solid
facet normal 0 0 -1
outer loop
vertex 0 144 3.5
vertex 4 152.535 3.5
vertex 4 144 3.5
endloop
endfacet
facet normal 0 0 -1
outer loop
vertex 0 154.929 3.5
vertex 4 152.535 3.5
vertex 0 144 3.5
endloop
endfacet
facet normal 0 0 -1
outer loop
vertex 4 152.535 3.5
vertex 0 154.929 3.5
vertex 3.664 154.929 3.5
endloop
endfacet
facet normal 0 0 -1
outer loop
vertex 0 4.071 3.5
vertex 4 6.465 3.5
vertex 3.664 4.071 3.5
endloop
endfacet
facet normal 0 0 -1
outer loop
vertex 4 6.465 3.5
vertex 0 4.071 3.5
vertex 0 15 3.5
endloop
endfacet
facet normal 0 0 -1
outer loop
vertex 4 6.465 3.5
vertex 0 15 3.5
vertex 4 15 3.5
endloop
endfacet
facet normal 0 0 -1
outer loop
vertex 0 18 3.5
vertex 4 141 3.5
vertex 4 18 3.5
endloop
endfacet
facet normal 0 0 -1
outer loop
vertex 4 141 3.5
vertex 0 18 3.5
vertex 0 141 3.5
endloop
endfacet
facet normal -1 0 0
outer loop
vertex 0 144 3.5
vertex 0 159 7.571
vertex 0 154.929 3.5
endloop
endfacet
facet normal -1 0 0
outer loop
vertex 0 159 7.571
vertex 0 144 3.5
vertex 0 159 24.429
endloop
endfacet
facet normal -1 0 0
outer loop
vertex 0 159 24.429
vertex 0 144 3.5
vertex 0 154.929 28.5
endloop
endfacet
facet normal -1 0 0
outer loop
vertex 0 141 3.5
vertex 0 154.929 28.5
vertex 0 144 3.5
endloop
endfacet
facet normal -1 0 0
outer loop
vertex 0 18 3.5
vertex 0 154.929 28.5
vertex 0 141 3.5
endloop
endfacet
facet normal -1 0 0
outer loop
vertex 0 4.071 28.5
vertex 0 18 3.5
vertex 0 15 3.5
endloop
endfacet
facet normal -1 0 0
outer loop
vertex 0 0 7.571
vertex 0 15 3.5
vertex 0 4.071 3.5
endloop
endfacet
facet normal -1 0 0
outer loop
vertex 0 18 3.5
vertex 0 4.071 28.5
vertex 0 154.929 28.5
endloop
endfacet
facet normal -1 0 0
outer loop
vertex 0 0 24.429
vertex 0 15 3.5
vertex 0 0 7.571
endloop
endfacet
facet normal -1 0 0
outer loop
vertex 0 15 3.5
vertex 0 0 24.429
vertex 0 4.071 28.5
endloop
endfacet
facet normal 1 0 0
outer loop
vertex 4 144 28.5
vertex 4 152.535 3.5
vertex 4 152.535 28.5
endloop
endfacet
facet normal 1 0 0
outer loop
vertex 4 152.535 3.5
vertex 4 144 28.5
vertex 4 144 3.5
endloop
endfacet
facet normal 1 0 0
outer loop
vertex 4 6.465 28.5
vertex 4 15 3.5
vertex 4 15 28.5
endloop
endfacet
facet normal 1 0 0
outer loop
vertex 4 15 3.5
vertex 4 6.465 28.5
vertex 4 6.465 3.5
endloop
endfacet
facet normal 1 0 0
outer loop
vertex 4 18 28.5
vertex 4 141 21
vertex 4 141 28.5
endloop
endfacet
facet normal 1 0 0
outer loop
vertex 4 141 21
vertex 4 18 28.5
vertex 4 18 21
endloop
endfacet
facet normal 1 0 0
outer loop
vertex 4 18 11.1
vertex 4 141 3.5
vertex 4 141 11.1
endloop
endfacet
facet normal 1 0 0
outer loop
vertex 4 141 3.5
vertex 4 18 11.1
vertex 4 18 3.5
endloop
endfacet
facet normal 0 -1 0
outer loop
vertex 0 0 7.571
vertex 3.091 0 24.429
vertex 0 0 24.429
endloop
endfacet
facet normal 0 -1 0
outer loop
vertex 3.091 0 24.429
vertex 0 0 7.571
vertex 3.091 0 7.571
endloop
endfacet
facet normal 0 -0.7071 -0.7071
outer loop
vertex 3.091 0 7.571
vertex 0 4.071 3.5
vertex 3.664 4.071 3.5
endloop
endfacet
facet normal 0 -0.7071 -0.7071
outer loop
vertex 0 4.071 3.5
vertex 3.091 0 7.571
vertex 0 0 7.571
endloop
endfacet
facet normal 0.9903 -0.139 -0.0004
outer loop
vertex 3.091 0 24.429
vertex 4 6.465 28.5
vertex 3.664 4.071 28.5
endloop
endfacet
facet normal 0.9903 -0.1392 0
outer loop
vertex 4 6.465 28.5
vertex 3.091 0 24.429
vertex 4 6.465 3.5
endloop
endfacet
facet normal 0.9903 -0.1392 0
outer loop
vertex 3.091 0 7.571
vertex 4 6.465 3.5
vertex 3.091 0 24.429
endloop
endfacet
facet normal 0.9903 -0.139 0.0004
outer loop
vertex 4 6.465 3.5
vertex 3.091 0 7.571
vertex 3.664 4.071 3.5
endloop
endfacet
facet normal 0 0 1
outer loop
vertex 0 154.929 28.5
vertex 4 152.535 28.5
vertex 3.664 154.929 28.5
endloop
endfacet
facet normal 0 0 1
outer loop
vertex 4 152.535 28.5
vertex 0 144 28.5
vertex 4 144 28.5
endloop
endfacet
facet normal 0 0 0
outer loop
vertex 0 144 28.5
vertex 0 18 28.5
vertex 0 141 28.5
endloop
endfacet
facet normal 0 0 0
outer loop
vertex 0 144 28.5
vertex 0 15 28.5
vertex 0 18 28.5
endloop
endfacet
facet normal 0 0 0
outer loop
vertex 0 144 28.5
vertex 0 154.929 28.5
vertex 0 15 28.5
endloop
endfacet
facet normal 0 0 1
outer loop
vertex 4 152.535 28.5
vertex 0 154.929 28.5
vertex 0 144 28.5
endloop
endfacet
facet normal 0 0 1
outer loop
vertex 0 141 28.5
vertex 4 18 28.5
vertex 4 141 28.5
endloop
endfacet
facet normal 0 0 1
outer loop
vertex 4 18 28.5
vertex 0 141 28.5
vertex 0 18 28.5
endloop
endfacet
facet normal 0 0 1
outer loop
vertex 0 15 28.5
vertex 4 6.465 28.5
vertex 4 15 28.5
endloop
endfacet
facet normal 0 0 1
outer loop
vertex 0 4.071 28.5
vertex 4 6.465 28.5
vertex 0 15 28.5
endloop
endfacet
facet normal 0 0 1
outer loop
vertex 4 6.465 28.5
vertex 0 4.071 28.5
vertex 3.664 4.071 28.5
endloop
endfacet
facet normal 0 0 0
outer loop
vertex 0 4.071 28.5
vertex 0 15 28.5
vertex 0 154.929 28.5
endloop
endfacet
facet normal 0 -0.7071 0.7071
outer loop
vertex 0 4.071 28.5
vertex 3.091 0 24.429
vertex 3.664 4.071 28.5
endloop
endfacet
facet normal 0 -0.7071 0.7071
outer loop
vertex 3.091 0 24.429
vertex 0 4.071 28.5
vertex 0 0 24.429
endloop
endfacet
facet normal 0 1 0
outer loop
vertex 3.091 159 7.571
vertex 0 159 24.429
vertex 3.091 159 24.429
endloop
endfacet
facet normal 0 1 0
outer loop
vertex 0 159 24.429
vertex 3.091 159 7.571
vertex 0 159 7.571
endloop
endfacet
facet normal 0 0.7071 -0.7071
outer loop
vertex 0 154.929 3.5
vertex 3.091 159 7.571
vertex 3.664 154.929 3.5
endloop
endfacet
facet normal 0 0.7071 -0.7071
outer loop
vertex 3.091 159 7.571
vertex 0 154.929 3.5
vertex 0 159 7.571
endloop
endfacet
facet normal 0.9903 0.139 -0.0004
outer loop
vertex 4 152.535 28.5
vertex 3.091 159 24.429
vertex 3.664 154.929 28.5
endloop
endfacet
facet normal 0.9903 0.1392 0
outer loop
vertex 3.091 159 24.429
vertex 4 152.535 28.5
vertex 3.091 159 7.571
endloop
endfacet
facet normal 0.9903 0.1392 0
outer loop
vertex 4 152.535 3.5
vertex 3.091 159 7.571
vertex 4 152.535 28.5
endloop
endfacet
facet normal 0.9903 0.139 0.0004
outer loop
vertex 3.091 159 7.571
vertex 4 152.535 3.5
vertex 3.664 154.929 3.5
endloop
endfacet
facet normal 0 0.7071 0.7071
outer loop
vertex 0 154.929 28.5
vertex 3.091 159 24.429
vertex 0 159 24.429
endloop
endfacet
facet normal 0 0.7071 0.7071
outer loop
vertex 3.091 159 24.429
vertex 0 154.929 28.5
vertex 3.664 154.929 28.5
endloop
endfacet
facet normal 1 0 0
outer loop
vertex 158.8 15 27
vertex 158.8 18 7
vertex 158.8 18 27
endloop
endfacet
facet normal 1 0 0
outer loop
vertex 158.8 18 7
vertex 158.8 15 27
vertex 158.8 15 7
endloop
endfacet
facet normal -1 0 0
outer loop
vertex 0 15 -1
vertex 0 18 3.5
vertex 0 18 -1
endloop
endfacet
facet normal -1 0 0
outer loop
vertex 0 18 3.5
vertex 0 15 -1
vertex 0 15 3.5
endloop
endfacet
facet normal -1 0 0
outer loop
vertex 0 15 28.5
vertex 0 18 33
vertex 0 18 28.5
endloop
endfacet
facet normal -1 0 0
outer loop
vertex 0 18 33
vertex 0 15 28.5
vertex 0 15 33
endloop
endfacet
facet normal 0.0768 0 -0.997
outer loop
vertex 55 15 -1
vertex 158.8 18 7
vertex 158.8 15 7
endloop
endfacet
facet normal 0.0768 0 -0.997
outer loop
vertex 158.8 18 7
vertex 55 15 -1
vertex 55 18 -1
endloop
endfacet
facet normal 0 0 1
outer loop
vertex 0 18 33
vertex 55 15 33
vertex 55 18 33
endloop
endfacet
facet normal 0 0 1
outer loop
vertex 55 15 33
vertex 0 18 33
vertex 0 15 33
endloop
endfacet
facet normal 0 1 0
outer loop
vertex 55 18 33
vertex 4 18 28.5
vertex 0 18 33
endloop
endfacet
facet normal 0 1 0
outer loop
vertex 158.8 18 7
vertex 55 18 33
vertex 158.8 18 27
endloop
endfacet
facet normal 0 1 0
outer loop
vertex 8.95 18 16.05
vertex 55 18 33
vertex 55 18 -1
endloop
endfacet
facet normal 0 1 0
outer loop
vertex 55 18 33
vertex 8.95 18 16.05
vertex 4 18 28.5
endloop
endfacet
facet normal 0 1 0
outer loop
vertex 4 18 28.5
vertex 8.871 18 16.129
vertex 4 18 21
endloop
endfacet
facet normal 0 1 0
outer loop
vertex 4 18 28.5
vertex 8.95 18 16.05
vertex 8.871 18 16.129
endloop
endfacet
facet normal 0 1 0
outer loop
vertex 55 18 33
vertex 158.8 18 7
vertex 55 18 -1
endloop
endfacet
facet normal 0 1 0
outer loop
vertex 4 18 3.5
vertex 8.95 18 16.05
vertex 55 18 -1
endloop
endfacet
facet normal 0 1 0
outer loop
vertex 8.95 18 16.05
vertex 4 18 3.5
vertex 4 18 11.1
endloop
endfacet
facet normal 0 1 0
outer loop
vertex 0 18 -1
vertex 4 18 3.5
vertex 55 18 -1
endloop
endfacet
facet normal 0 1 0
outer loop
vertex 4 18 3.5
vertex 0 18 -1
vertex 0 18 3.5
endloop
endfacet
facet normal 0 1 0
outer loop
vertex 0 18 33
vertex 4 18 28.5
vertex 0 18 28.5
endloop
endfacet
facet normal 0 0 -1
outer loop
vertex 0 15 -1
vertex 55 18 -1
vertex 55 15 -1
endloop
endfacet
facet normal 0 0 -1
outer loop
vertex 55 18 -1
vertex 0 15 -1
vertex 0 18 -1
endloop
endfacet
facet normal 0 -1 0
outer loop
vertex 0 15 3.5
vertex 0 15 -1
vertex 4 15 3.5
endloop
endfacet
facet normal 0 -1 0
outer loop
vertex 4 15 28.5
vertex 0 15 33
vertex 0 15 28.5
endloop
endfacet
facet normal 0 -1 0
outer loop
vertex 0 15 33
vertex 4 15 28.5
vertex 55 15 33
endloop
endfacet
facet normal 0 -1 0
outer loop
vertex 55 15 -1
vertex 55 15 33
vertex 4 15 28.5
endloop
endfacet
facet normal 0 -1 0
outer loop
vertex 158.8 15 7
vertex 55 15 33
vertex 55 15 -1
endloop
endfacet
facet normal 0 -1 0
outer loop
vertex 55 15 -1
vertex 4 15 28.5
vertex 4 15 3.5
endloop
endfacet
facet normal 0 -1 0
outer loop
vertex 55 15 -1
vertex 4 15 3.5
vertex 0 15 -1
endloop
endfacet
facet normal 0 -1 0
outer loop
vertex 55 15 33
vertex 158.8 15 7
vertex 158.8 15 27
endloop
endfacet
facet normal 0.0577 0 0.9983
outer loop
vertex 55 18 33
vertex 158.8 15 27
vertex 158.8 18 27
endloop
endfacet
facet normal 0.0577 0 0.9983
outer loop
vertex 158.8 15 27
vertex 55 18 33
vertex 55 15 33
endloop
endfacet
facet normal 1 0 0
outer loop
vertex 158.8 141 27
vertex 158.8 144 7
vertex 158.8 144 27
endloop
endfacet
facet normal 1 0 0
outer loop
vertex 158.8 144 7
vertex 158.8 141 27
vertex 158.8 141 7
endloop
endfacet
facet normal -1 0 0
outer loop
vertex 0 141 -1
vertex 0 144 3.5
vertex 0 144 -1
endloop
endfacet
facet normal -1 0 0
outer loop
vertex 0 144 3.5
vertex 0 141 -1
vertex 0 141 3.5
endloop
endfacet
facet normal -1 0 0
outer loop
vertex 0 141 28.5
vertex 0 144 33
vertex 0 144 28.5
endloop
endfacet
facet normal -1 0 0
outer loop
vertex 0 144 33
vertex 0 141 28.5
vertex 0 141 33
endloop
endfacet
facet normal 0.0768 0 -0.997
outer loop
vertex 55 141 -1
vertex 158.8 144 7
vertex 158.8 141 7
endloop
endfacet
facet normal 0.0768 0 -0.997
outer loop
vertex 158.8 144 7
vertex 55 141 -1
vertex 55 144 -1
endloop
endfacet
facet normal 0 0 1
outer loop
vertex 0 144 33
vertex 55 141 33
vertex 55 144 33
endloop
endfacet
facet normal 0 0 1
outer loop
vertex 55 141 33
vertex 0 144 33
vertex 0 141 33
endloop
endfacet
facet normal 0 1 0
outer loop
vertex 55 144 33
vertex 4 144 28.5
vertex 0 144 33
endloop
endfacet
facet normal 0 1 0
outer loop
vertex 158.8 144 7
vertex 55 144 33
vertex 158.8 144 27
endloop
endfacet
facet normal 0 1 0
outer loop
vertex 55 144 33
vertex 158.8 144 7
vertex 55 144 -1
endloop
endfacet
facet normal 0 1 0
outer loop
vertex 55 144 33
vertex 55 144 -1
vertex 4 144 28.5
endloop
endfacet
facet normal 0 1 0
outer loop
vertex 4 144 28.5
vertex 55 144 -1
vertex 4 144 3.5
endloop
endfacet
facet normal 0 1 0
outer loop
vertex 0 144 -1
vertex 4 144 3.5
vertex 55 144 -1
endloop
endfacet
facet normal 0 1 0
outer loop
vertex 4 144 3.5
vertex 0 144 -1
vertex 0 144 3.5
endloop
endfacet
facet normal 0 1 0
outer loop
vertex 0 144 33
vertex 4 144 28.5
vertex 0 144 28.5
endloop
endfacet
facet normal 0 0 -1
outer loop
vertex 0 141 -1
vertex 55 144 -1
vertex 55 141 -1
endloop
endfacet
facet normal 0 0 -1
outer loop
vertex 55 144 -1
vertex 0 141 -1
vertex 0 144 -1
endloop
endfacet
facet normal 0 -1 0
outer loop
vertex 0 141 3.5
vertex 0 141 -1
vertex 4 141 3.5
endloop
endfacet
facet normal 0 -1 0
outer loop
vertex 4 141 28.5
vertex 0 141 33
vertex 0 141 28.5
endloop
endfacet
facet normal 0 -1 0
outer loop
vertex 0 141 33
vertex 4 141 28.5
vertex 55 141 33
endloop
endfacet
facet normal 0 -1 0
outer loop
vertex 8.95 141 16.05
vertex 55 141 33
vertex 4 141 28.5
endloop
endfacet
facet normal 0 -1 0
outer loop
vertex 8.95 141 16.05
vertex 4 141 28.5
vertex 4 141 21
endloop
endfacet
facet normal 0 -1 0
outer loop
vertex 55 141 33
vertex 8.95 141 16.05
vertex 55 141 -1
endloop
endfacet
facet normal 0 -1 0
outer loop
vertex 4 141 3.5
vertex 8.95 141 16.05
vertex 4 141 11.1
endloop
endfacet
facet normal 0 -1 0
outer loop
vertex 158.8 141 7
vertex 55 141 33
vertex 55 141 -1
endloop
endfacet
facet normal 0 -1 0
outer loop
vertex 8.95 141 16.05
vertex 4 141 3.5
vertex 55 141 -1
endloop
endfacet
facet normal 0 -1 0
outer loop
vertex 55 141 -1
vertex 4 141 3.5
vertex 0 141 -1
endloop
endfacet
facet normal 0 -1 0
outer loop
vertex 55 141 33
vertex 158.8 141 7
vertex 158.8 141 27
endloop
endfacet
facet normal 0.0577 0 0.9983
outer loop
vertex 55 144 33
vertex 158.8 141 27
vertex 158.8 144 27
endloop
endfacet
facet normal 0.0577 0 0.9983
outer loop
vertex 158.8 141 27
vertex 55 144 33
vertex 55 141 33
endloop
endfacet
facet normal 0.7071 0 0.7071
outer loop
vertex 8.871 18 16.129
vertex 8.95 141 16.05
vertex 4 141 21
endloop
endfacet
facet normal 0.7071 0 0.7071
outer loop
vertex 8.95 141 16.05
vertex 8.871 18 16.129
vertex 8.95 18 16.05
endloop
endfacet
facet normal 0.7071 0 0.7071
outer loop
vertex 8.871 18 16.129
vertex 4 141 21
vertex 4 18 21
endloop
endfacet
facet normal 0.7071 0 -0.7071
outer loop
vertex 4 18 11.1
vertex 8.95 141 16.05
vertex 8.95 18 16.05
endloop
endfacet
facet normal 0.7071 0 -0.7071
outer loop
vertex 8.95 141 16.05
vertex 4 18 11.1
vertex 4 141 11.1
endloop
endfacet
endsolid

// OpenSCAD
x=25;
y=159; // see the box.scad framelength echo line and subtract 2 - this is the distance between the tapered top bar ends
z=4;


rotate([0,90,0]) frame();
//translate([170,180,0]) rotate([180,90,0]) frame();

module frame() {
rotate([0,0,0]) union() {
translate([-3.5,0,z]) rotate([0,180,0]) union() {
    quarter_frame(x,y,z);
    translate([x,0,0]) mirror([1,0,0]) quarter_frame(x,y,z);
    translate([0,y,0]) mirror([0,1,0]) quarter_frame(x,y,z);
    translate([0,y,0]) mirror([0,1,0]) translate([x,0,0]) mirror([1,0,0]) quarter_frame(x,y,z);
}

// legs
// medium frames are 158.8mm (rounded down)
translate([-33,18,0]) rotate([90,0,0]) tapered_leg();
translate([-33,y-15,0]) rotate([90,0,0]) tapered_leg();

// old straight legs
//translate([-32,15,3]) cube([32,2,158]);
//translate([-32,y-12,3]) cube([32,2,158]);

// comb bridge
translate([(-32/2-5),16,4]) rotate([135,0,90]) prism(y-6-14-6-8,7,12);
}
}

module quarter_frame(x,y,z) {
    difference() {
        cube([x/2,y/2,z]);
        translate([-5,2,0])  rotate([0,0,-45]) color("red") cube([10,5,6]);
        translate([0,-1,-4])  rotate([-8,0,0]) color("red") cube([x,10,5]);
    }
}

module prism(l, w, h){
       polyhedron(
               points=[[0,0,0], [l,0,0], [l,w,0], [0,w,0], [0,w,h], [l,w,h]],
               faces=[[0,1,2,3],[5,4,3,2],[0,4,5,1],[0,3,4],[5,2,1]]
               );
}

module tapered_leg() {
linear_extrude(height = 3, convexity = 3) polygon([[0,0],[34,0],[34,55],[26,158.8],[6,158.8],[0,55]],[[0,1,2,3,4,5]]);
}    
